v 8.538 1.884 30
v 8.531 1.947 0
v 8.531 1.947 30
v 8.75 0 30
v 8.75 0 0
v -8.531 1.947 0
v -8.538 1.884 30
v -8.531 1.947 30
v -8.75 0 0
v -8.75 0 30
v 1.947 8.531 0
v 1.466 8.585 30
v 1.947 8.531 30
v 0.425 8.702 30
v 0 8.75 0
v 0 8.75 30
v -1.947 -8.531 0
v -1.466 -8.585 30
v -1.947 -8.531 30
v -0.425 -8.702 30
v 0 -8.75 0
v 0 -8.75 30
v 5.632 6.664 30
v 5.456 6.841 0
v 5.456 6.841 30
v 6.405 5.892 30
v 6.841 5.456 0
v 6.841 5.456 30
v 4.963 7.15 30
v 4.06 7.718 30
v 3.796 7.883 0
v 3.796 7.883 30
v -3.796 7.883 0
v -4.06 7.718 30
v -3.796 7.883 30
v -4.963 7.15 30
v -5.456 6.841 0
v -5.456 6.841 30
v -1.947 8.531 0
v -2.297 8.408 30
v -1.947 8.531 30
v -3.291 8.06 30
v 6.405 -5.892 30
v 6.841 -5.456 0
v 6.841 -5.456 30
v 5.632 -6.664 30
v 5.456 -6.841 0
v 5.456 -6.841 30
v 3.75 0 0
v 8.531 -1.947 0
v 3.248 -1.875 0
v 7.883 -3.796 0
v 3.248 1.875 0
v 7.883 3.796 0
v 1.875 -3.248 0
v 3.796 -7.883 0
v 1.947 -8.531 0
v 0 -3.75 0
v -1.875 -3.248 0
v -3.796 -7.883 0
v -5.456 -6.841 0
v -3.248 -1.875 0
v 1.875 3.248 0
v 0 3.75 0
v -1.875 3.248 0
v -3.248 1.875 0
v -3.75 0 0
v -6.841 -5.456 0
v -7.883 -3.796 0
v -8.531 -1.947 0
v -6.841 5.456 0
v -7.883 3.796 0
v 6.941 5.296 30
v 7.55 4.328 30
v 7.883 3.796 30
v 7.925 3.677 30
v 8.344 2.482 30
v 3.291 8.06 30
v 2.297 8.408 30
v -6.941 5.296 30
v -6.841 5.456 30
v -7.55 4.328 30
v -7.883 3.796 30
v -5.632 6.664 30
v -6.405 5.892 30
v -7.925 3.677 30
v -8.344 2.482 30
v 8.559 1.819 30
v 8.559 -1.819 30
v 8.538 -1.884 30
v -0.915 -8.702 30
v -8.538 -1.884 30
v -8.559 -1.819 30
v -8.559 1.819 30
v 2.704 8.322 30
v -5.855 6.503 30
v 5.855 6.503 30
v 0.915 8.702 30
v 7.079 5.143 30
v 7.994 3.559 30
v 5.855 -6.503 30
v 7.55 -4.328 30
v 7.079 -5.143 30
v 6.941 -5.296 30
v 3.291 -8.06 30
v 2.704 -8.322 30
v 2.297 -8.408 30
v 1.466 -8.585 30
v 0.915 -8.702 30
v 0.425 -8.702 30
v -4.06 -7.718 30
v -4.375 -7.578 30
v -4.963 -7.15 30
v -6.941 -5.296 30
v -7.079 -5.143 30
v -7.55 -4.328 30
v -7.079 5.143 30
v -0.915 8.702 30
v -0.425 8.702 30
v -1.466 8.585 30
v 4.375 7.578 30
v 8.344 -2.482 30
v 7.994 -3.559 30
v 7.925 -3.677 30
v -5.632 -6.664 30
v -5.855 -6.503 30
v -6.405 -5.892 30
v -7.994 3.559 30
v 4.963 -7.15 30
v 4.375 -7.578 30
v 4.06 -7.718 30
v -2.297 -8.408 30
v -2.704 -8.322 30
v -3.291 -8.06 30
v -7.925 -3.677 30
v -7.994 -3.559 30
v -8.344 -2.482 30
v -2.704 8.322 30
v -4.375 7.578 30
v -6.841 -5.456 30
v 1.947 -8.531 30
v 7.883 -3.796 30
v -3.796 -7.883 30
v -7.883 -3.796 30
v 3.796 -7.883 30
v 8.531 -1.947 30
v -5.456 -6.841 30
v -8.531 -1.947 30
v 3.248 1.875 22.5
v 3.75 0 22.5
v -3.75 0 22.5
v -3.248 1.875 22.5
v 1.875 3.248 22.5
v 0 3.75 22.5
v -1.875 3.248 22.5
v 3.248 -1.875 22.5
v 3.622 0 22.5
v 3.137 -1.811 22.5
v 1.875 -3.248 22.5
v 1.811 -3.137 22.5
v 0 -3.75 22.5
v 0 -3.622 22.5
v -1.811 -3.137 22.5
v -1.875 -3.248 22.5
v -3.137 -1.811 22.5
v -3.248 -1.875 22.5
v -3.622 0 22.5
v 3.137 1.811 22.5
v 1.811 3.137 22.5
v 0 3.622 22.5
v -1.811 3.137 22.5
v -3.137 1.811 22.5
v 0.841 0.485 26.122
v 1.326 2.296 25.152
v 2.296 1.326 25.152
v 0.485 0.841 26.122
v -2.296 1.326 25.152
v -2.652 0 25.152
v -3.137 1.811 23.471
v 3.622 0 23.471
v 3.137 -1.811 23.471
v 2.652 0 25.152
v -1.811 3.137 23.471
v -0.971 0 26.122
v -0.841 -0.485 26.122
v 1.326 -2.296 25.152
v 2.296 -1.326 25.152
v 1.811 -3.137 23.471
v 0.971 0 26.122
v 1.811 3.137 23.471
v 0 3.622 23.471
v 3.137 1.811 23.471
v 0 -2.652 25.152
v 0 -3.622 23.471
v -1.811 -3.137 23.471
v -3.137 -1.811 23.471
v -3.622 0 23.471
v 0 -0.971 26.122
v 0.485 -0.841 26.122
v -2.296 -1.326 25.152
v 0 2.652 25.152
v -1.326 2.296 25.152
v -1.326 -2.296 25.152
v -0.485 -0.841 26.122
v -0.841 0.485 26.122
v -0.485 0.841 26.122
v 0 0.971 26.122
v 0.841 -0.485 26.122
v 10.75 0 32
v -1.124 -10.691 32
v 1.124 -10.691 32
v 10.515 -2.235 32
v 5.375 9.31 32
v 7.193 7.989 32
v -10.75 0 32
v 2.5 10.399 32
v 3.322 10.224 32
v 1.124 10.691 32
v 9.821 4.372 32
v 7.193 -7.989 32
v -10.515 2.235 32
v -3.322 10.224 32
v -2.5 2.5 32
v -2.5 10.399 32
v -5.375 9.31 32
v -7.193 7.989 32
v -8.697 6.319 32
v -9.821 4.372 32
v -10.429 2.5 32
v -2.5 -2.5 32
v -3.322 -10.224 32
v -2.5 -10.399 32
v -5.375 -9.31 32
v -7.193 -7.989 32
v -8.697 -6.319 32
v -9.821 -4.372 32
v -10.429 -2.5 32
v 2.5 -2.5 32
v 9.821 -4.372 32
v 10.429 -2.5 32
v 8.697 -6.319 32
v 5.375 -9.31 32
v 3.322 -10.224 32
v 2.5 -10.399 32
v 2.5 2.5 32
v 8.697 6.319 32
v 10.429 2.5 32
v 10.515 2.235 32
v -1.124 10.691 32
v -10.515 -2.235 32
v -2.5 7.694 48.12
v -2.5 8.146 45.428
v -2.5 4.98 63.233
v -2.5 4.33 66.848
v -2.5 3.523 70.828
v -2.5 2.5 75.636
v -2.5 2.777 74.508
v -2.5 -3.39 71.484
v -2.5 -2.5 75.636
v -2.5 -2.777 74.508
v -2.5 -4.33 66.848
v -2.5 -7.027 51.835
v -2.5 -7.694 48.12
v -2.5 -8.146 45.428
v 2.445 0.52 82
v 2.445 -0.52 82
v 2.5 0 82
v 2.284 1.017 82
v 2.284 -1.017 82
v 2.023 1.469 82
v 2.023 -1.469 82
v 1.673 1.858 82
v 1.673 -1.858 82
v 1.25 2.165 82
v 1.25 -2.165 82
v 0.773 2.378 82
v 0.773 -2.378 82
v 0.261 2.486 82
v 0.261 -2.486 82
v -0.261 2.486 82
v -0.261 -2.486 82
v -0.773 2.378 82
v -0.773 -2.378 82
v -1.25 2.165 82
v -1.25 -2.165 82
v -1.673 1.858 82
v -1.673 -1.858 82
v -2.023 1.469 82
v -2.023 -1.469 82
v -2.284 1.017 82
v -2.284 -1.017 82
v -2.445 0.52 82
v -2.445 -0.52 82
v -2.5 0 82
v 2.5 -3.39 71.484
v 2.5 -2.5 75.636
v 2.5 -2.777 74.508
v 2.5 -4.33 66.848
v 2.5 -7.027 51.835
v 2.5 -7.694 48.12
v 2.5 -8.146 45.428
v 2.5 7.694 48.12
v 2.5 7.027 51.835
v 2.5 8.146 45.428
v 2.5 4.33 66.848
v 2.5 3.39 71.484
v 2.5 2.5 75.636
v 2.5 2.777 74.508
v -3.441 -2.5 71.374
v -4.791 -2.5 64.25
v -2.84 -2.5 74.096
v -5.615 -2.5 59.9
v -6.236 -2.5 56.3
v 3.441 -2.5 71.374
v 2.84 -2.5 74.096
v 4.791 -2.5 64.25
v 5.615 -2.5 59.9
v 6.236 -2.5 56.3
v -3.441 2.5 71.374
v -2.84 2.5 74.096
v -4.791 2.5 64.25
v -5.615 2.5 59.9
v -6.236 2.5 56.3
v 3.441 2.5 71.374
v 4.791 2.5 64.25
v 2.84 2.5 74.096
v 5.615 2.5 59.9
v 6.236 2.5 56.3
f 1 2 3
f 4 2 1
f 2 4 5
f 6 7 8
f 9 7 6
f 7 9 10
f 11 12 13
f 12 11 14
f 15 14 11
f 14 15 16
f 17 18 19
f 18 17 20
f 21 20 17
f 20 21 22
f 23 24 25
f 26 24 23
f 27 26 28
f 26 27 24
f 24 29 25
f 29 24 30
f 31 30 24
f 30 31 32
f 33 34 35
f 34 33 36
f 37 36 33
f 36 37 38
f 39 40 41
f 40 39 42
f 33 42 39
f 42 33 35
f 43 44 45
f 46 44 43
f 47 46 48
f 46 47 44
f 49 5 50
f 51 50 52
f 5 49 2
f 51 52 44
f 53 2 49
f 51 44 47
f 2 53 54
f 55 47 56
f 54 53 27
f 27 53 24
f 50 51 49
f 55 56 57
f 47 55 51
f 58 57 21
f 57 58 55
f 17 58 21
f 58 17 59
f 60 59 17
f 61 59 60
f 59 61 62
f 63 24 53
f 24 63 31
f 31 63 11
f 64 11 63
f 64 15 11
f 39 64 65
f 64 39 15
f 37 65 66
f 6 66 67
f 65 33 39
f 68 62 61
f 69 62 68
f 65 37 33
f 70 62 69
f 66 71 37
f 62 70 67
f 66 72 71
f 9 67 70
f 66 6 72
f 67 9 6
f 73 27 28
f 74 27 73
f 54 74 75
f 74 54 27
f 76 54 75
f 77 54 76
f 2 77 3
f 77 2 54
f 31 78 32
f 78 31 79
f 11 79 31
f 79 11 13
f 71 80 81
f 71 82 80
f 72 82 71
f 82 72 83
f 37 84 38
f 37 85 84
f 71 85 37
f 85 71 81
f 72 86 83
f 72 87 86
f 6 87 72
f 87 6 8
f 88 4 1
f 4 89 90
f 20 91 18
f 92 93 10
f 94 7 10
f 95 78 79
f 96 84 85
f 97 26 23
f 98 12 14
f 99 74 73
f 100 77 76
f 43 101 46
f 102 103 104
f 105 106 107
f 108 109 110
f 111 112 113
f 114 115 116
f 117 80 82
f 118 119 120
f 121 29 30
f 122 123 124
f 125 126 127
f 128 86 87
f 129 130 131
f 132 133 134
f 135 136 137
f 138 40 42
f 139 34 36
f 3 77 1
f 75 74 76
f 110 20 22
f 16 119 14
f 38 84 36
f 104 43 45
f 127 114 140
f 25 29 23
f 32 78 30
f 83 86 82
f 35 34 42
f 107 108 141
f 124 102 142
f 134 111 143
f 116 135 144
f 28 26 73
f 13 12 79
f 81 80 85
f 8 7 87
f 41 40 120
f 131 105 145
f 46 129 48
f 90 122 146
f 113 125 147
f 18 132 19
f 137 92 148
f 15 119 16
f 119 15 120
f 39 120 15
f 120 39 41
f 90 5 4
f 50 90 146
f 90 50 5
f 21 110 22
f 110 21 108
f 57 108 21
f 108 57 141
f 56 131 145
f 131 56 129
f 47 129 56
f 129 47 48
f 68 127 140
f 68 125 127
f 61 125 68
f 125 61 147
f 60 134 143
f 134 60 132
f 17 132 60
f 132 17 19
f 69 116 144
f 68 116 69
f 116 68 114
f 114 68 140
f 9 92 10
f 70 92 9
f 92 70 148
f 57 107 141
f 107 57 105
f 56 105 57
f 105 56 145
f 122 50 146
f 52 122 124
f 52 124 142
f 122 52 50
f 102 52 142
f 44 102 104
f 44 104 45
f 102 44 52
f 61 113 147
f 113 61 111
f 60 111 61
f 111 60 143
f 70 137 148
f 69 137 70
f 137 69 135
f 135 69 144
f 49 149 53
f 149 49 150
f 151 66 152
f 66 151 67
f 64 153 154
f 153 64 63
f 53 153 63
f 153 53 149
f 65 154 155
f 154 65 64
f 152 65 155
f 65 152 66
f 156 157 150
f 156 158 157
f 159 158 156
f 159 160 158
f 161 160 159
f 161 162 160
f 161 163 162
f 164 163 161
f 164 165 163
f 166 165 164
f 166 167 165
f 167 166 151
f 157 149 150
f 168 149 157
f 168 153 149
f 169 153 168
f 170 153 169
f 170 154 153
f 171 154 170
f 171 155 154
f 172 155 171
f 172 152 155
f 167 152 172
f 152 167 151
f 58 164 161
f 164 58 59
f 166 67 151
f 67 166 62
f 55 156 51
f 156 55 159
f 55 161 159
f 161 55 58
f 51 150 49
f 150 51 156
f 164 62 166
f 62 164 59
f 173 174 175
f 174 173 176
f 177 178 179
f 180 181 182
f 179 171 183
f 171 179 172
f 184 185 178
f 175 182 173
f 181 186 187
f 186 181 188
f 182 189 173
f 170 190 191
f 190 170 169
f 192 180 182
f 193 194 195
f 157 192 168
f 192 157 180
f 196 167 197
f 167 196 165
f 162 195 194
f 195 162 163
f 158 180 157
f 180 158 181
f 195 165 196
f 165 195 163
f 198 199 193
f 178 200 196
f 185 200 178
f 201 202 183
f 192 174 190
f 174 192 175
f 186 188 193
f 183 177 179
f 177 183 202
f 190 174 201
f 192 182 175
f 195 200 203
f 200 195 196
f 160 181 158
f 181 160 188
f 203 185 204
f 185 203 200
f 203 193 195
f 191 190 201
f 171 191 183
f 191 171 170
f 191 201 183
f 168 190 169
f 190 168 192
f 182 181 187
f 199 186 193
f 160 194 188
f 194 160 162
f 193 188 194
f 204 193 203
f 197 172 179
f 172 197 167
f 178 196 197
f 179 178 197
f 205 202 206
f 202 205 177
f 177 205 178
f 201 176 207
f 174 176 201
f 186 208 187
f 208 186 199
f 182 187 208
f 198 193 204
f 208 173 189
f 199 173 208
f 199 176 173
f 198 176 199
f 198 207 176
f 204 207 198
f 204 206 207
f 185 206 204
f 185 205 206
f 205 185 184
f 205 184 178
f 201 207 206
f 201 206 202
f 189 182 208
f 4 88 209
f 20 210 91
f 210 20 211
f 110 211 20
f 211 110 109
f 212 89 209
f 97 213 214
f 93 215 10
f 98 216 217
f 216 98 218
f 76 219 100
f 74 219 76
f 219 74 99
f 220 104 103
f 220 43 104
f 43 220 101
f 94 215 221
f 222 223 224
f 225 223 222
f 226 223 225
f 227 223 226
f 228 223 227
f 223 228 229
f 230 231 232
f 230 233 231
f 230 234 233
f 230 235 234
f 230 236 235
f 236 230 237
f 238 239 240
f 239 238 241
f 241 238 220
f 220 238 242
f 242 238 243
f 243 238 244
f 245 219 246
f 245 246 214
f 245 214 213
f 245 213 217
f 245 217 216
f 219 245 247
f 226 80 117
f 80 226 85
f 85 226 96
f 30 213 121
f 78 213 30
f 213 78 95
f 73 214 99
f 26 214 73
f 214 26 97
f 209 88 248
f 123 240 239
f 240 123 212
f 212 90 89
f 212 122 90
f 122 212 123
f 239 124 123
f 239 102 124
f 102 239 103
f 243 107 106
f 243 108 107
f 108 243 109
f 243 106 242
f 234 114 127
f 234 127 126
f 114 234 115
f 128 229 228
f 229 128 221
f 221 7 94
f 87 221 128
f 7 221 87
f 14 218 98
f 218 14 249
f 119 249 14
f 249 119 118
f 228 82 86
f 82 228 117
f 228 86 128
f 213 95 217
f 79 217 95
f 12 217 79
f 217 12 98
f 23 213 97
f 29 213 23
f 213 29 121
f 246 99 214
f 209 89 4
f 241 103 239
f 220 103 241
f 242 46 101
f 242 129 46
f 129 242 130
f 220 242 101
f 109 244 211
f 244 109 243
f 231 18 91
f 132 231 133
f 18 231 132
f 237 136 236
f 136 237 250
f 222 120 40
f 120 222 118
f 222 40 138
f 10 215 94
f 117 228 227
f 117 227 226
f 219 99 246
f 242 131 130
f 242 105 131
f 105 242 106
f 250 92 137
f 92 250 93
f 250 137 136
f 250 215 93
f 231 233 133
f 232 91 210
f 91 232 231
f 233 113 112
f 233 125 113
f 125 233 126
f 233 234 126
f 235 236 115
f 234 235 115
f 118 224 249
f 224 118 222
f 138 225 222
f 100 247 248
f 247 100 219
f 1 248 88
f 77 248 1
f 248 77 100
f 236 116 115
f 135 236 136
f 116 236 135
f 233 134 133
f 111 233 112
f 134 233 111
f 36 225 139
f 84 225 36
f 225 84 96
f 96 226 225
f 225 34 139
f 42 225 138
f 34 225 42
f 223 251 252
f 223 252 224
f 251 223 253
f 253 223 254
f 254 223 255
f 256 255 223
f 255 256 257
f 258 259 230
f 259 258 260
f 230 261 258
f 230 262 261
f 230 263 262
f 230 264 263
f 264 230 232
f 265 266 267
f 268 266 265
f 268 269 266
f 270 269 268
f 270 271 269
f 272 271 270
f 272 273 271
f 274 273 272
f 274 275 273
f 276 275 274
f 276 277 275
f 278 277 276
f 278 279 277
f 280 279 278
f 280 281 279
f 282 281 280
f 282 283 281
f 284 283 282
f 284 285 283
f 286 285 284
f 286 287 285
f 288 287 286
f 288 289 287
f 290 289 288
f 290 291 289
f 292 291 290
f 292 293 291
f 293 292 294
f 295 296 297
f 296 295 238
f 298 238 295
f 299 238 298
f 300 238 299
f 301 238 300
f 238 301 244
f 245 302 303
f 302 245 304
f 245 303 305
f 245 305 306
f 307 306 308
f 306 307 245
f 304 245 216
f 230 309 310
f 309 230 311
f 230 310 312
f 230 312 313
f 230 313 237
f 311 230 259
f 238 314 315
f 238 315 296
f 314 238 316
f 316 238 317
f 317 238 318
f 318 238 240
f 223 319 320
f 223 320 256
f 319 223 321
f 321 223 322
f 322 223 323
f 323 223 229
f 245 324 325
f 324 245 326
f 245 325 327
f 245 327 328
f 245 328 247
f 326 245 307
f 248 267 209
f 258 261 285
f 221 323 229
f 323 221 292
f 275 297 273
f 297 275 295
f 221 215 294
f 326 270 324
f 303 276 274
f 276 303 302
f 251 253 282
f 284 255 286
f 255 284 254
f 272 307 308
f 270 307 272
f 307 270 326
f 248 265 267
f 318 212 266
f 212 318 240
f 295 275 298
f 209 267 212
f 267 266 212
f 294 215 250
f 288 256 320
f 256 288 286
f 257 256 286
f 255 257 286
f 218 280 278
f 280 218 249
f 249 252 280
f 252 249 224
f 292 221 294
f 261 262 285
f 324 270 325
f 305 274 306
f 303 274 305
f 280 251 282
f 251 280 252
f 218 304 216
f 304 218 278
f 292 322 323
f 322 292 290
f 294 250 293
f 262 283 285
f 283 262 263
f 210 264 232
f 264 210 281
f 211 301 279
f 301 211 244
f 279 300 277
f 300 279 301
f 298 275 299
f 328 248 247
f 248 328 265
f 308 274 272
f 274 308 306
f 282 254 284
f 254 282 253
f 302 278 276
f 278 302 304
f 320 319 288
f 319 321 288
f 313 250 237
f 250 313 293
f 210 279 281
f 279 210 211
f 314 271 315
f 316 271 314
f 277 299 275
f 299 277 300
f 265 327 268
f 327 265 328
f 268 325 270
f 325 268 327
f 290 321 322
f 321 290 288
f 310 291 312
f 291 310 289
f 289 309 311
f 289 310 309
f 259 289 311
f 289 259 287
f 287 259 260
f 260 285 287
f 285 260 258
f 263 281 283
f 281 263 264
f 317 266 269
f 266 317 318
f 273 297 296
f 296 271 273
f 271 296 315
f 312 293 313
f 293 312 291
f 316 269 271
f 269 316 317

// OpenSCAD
union() {
	union() {
		difference() {
			difference() {
				cylinder(h = 30, r = 8.7500000000);
				cylinder(h = 22.5000000000, r = 3.7500000000);
			}
			translate(v = [0, 0, 22.5000000000]) {
				sphere(r = 3.7500000000);
			}
		}
		translate(v = [0, 0, 30]) {
			cylinder(h = 2, r1 = 8.7500000000, r2 = 10.7500000000);
		}
	}
	translate(v = [0, 0, 32]) {
		intersection() {
			union() {
				cube(center = true, size = [5, 21.5000000000, 100]);
				cube(center = true, size = [21.5000000000, 5, 100]);
			}
			cylinder(h = 50, r1 = 10.7500000000, r2 = 2.5000000000);
		}
	}
}
/***********************************************
*********      SolidPython code:      **********
************************************************
 

import solid as s
import solid.utils as u

insert_rad = 8.75
insert_hole_rad = 3.75
insert_height = 30
insert_hole_down = insert_hole_rad * 2
insert_hole_height = insert_height - insert_hole_down
lip_rad = insert_rad + 2
lip_height = 2
peg_height = 50
peg_fin_width = 5
peg_fin_length = lip_rad * 2.0

insert = (
    s.cylinder(r=insert_rad, h=insert_height) -
    s.cylinder(r=insert_hole_rad, h=insert_hole_height) - 
    u.up(insert_hole_height)(s.sphere(r=insert_hole_rad))
)

flange = u.up(insert_height)(
    s.cylinder(r1=insert_rad, r2=lip_rad, h=lip_height)
)

peg = u.up(insert_height + lip_height)(
    (s.cube(
        size=(peg_fin_width, peg_fin_length, peg_height * 2), center=True)
    + s.cube(
        size=(peg_fin_length, peg_fin_width, peg_height * 2), center=True)) *
    s.cylinder(r1=lip_rad, r2=peg_fin_width / 2.0, h=peg_height)
)

final = insert + flange + peg
s.scad_render_to_file(final, __file__.replace('.py', '.scad'))
 
 
************************************************/
